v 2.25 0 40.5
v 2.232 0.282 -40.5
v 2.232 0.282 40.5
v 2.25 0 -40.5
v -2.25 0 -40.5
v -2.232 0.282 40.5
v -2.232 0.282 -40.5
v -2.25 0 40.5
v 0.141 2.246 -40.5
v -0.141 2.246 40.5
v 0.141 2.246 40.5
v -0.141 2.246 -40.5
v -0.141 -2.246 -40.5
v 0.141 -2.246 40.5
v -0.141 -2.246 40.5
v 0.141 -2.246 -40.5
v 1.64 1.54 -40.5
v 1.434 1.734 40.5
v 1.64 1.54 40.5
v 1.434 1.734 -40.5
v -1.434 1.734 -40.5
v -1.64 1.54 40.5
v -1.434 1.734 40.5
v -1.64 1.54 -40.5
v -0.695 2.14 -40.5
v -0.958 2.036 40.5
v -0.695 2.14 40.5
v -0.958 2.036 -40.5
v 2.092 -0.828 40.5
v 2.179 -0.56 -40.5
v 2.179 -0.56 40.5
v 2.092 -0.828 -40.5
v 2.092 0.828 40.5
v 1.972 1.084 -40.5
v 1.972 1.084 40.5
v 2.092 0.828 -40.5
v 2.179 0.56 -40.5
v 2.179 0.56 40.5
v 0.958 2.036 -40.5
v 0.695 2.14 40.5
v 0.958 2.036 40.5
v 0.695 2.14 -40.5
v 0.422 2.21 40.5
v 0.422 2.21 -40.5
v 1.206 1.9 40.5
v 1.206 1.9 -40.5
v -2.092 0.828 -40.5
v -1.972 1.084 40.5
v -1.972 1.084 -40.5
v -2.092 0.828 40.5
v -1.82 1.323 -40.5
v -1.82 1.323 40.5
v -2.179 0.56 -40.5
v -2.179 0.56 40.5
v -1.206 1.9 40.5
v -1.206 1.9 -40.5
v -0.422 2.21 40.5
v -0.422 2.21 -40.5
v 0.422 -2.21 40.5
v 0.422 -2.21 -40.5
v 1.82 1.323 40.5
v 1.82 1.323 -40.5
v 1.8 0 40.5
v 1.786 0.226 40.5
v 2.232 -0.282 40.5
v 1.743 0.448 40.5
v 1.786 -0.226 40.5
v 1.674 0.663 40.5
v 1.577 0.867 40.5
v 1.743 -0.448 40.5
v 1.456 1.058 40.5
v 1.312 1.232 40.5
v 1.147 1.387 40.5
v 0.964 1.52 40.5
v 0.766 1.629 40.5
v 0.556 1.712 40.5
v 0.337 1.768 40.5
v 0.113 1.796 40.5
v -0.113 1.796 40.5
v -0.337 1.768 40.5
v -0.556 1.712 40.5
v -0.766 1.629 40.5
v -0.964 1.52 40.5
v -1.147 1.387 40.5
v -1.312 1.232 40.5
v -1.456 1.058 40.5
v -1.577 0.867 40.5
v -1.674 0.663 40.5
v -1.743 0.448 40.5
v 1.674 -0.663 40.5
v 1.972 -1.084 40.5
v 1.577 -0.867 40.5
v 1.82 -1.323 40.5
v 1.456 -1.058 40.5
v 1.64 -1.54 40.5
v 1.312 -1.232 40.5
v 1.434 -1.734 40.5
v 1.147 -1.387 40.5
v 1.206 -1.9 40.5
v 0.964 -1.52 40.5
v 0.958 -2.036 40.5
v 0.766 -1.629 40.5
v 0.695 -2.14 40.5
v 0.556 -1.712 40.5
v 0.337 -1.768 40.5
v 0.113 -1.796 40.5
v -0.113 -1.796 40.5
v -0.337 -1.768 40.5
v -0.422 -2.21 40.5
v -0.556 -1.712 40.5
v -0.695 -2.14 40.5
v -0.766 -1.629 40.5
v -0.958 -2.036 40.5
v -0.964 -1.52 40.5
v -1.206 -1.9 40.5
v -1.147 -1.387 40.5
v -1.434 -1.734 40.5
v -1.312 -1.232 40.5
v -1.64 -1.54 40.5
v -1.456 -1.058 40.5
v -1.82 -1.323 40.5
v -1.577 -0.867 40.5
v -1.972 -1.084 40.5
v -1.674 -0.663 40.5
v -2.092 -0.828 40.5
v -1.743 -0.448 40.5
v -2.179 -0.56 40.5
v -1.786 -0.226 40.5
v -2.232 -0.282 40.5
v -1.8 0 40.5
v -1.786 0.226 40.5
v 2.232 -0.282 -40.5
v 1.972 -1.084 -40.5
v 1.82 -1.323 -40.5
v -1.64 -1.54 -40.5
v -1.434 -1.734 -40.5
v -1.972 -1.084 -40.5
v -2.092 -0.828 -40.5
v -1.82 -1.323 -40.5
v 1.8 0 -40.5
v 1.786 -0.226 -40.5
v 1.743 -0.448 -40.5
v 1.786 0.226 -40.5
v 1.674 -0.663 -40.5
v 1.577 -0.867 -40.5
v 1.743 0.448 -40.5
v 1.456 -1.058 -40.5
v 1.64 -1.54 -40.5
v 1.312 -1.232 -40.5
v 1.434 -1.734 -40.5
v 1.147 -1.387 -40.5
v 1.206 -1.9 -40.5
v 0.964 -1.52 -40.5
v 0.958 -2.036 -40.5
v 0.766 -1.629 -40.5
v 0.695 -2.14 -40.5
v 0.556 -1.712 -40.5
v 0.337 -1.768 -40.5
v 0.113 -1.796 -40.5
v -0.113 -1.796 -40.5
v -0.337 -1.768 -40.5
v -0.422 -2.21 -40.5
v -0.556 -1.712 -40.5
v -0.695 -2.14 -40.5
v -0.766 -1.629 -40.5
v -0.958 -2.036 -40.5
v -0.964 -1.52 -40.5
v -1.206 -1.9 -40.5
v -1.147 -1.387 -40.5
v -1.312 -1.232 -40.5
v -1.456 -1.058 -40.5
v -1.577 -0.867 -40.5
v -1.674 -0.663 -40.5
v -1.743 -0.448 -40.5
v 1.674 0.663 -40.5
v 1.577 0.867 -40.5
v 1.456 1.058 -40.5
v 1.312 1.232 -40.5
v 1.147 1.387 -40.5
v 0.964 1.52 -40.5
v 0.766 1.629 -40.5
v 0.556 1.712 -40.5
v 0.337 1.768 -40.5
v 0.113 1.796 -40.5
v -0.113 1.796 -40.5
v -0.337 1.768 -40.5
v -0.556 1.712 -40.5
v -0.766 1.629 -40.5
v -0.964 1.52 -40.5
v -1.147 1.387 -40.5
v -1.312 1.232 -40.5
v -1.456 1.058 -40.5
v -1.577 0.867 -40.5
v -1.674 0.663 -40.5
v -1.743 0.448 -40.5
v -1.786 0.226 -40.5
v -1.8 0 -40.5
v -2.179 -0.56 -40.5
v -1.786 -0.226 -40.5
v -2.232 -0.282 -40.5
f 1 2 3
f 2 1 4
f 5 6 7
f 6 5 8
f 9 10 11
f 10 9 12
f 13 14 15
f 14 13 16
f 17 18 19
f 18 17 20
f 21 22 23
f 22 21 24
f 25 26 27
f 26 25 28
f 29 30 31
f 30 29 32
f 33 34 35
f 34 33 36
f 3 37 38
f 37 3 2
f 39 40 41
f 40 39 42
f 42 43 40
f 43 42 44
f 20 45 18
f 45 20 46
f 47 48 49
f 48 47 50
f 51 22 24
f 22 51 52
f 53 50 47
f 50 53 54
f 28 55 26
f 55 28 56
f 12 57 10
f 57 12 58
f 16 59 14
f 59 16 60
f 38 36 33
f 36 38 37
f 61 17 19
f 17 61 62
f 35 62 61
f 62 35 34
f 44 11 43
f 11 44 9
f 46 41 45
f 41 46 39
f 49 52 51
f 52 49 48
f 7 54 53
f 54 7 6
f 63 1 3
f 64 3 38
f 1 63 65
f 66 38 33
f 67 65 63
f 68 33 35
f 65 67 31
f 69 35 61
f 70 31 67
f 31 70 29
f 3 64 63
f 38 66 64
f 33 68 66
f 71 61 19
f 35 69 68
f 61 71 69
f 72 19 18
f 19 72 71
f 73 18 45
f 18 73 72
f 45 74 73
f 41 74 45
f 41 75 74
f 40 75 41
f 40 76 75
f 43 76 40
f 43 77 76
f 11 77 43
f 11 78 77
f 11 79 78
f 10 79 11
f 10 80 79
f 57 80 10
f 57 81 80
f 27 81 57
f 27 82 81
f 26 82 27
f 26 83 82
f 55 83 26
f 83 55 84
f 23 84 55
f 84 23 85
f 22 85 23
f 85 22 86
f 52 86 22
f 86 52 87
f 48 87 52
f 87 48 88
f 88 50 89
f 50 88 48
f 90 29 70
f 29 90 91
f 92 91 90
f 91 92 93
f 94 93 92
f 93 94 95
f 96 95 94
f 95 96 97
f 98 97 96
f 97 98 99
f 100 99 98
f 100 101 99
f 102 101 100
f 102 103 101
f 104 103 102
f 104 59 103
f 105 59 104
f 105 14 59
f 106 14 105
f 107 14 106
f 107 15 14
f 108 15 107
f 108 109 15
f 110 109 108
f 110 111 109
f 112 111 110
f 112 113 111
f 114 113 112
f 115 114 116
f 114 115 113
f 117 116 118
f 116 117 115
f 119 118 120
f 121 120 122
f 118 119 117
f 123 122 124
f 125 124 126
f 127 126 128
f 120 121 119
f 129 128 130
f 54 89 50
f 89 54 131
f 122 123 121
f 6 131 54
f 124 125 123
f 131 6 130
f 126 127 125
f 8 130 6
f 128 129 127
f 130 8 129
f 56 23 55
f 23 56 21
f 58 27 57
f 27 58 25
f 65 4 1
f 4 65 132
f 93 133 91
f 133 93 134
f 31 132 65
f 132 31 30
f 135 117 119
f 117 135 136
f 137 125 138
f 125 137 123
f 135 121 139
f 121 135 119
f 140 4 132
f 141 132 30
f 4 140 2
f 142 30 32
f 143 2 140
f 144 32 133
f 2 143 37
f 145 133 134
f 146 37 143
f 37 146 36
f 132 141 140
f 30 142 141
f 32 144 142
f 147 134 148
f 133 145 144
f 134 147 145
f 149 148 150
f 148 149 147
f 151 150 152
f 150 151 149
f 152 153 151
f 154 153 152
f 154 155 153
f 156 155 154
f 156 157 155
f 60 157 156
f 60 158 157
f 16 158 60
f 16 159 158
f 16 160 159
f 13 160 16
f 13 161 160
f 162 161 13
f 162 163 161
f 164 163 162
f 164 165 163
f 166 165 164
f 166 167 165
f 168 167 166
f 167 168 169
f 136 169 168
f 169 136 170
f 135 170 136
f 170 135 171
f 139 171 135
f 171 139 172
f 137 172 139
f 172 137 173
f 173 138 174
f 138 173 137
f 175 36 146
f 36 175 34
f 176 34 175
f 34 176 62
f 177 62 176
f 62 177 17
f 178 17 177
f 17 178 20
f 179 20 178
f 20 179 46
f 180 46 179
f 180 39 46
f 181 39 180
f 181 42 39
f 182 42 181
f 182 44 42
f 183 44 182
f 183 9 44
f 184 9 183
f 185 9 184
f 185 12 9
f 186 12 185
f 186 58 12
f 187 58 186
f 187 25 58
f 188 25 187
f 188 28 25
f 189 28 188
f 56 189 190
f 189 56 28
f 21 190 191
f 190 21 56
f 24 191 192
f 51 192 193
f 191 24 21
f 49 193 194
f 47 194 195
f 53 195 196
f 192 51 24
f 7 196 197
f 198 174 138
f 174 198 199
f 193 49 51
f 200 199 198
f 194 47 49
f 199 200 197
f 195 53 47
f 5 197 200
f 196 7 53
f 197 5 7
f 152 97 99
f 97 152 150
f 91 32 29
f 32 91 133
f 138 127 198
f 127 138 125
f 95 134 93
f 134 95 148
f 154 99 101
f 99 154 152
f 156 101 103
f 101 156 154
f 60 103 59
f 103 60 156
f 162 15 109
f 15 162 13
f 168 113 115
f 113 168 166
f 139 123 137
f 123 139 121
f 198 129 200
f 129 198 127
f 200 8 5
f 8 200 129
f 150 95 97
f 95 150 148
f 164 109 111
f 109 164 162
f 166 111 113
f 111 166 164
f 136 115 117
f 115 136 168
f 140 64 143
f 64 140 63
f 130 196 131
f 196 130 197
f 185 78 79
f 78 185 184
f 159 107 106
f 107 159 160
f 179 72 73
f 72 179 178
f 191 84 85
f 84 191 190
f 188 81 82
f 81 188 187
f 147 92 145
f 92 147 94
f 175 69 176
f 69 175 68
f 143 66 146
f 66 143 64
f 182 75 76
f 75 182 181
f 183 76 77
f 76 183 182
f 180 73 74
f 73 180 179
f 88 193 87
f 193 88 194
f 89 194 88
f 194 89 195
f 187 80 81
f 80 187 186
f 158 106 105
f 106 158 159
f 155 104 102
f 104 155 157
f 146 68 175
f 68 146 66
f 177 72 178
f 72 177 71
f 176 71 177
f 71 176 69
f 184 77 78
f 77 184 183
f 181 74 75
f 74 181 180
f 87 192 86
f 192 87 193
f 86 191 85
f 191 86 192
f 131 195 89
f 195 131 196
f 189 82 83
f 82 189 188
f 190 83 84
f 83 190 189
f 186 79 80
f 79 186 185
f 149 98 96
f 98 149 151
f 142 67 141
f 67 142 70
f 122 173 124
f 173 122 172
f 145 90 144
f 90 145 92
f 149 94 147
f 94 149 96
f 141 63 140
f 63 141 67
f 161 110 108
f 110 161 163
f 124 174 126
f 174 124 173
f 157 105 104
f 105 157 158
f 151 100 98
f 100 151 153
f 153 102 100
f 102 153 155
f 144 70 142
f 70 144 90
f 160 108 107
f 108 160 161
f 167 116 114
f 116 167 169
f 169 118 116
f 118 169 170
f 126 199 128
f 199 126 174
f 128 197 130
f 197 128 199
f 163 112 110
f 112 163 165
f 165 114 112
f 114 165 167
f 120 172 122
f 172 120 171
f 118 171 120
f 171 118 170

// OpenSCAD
$fn = 50;


difference() {
	union() {
		translate(v = [0, 0, -40.5000000000]) {
			cylinder(h = 81, r = 2.2500000000);
		}
	}
	union() {
		translate(v = [0, 0, -100.0000000000]) {
			cylinder(h = 200, r = 1.8000000000);
		}
	}
}
